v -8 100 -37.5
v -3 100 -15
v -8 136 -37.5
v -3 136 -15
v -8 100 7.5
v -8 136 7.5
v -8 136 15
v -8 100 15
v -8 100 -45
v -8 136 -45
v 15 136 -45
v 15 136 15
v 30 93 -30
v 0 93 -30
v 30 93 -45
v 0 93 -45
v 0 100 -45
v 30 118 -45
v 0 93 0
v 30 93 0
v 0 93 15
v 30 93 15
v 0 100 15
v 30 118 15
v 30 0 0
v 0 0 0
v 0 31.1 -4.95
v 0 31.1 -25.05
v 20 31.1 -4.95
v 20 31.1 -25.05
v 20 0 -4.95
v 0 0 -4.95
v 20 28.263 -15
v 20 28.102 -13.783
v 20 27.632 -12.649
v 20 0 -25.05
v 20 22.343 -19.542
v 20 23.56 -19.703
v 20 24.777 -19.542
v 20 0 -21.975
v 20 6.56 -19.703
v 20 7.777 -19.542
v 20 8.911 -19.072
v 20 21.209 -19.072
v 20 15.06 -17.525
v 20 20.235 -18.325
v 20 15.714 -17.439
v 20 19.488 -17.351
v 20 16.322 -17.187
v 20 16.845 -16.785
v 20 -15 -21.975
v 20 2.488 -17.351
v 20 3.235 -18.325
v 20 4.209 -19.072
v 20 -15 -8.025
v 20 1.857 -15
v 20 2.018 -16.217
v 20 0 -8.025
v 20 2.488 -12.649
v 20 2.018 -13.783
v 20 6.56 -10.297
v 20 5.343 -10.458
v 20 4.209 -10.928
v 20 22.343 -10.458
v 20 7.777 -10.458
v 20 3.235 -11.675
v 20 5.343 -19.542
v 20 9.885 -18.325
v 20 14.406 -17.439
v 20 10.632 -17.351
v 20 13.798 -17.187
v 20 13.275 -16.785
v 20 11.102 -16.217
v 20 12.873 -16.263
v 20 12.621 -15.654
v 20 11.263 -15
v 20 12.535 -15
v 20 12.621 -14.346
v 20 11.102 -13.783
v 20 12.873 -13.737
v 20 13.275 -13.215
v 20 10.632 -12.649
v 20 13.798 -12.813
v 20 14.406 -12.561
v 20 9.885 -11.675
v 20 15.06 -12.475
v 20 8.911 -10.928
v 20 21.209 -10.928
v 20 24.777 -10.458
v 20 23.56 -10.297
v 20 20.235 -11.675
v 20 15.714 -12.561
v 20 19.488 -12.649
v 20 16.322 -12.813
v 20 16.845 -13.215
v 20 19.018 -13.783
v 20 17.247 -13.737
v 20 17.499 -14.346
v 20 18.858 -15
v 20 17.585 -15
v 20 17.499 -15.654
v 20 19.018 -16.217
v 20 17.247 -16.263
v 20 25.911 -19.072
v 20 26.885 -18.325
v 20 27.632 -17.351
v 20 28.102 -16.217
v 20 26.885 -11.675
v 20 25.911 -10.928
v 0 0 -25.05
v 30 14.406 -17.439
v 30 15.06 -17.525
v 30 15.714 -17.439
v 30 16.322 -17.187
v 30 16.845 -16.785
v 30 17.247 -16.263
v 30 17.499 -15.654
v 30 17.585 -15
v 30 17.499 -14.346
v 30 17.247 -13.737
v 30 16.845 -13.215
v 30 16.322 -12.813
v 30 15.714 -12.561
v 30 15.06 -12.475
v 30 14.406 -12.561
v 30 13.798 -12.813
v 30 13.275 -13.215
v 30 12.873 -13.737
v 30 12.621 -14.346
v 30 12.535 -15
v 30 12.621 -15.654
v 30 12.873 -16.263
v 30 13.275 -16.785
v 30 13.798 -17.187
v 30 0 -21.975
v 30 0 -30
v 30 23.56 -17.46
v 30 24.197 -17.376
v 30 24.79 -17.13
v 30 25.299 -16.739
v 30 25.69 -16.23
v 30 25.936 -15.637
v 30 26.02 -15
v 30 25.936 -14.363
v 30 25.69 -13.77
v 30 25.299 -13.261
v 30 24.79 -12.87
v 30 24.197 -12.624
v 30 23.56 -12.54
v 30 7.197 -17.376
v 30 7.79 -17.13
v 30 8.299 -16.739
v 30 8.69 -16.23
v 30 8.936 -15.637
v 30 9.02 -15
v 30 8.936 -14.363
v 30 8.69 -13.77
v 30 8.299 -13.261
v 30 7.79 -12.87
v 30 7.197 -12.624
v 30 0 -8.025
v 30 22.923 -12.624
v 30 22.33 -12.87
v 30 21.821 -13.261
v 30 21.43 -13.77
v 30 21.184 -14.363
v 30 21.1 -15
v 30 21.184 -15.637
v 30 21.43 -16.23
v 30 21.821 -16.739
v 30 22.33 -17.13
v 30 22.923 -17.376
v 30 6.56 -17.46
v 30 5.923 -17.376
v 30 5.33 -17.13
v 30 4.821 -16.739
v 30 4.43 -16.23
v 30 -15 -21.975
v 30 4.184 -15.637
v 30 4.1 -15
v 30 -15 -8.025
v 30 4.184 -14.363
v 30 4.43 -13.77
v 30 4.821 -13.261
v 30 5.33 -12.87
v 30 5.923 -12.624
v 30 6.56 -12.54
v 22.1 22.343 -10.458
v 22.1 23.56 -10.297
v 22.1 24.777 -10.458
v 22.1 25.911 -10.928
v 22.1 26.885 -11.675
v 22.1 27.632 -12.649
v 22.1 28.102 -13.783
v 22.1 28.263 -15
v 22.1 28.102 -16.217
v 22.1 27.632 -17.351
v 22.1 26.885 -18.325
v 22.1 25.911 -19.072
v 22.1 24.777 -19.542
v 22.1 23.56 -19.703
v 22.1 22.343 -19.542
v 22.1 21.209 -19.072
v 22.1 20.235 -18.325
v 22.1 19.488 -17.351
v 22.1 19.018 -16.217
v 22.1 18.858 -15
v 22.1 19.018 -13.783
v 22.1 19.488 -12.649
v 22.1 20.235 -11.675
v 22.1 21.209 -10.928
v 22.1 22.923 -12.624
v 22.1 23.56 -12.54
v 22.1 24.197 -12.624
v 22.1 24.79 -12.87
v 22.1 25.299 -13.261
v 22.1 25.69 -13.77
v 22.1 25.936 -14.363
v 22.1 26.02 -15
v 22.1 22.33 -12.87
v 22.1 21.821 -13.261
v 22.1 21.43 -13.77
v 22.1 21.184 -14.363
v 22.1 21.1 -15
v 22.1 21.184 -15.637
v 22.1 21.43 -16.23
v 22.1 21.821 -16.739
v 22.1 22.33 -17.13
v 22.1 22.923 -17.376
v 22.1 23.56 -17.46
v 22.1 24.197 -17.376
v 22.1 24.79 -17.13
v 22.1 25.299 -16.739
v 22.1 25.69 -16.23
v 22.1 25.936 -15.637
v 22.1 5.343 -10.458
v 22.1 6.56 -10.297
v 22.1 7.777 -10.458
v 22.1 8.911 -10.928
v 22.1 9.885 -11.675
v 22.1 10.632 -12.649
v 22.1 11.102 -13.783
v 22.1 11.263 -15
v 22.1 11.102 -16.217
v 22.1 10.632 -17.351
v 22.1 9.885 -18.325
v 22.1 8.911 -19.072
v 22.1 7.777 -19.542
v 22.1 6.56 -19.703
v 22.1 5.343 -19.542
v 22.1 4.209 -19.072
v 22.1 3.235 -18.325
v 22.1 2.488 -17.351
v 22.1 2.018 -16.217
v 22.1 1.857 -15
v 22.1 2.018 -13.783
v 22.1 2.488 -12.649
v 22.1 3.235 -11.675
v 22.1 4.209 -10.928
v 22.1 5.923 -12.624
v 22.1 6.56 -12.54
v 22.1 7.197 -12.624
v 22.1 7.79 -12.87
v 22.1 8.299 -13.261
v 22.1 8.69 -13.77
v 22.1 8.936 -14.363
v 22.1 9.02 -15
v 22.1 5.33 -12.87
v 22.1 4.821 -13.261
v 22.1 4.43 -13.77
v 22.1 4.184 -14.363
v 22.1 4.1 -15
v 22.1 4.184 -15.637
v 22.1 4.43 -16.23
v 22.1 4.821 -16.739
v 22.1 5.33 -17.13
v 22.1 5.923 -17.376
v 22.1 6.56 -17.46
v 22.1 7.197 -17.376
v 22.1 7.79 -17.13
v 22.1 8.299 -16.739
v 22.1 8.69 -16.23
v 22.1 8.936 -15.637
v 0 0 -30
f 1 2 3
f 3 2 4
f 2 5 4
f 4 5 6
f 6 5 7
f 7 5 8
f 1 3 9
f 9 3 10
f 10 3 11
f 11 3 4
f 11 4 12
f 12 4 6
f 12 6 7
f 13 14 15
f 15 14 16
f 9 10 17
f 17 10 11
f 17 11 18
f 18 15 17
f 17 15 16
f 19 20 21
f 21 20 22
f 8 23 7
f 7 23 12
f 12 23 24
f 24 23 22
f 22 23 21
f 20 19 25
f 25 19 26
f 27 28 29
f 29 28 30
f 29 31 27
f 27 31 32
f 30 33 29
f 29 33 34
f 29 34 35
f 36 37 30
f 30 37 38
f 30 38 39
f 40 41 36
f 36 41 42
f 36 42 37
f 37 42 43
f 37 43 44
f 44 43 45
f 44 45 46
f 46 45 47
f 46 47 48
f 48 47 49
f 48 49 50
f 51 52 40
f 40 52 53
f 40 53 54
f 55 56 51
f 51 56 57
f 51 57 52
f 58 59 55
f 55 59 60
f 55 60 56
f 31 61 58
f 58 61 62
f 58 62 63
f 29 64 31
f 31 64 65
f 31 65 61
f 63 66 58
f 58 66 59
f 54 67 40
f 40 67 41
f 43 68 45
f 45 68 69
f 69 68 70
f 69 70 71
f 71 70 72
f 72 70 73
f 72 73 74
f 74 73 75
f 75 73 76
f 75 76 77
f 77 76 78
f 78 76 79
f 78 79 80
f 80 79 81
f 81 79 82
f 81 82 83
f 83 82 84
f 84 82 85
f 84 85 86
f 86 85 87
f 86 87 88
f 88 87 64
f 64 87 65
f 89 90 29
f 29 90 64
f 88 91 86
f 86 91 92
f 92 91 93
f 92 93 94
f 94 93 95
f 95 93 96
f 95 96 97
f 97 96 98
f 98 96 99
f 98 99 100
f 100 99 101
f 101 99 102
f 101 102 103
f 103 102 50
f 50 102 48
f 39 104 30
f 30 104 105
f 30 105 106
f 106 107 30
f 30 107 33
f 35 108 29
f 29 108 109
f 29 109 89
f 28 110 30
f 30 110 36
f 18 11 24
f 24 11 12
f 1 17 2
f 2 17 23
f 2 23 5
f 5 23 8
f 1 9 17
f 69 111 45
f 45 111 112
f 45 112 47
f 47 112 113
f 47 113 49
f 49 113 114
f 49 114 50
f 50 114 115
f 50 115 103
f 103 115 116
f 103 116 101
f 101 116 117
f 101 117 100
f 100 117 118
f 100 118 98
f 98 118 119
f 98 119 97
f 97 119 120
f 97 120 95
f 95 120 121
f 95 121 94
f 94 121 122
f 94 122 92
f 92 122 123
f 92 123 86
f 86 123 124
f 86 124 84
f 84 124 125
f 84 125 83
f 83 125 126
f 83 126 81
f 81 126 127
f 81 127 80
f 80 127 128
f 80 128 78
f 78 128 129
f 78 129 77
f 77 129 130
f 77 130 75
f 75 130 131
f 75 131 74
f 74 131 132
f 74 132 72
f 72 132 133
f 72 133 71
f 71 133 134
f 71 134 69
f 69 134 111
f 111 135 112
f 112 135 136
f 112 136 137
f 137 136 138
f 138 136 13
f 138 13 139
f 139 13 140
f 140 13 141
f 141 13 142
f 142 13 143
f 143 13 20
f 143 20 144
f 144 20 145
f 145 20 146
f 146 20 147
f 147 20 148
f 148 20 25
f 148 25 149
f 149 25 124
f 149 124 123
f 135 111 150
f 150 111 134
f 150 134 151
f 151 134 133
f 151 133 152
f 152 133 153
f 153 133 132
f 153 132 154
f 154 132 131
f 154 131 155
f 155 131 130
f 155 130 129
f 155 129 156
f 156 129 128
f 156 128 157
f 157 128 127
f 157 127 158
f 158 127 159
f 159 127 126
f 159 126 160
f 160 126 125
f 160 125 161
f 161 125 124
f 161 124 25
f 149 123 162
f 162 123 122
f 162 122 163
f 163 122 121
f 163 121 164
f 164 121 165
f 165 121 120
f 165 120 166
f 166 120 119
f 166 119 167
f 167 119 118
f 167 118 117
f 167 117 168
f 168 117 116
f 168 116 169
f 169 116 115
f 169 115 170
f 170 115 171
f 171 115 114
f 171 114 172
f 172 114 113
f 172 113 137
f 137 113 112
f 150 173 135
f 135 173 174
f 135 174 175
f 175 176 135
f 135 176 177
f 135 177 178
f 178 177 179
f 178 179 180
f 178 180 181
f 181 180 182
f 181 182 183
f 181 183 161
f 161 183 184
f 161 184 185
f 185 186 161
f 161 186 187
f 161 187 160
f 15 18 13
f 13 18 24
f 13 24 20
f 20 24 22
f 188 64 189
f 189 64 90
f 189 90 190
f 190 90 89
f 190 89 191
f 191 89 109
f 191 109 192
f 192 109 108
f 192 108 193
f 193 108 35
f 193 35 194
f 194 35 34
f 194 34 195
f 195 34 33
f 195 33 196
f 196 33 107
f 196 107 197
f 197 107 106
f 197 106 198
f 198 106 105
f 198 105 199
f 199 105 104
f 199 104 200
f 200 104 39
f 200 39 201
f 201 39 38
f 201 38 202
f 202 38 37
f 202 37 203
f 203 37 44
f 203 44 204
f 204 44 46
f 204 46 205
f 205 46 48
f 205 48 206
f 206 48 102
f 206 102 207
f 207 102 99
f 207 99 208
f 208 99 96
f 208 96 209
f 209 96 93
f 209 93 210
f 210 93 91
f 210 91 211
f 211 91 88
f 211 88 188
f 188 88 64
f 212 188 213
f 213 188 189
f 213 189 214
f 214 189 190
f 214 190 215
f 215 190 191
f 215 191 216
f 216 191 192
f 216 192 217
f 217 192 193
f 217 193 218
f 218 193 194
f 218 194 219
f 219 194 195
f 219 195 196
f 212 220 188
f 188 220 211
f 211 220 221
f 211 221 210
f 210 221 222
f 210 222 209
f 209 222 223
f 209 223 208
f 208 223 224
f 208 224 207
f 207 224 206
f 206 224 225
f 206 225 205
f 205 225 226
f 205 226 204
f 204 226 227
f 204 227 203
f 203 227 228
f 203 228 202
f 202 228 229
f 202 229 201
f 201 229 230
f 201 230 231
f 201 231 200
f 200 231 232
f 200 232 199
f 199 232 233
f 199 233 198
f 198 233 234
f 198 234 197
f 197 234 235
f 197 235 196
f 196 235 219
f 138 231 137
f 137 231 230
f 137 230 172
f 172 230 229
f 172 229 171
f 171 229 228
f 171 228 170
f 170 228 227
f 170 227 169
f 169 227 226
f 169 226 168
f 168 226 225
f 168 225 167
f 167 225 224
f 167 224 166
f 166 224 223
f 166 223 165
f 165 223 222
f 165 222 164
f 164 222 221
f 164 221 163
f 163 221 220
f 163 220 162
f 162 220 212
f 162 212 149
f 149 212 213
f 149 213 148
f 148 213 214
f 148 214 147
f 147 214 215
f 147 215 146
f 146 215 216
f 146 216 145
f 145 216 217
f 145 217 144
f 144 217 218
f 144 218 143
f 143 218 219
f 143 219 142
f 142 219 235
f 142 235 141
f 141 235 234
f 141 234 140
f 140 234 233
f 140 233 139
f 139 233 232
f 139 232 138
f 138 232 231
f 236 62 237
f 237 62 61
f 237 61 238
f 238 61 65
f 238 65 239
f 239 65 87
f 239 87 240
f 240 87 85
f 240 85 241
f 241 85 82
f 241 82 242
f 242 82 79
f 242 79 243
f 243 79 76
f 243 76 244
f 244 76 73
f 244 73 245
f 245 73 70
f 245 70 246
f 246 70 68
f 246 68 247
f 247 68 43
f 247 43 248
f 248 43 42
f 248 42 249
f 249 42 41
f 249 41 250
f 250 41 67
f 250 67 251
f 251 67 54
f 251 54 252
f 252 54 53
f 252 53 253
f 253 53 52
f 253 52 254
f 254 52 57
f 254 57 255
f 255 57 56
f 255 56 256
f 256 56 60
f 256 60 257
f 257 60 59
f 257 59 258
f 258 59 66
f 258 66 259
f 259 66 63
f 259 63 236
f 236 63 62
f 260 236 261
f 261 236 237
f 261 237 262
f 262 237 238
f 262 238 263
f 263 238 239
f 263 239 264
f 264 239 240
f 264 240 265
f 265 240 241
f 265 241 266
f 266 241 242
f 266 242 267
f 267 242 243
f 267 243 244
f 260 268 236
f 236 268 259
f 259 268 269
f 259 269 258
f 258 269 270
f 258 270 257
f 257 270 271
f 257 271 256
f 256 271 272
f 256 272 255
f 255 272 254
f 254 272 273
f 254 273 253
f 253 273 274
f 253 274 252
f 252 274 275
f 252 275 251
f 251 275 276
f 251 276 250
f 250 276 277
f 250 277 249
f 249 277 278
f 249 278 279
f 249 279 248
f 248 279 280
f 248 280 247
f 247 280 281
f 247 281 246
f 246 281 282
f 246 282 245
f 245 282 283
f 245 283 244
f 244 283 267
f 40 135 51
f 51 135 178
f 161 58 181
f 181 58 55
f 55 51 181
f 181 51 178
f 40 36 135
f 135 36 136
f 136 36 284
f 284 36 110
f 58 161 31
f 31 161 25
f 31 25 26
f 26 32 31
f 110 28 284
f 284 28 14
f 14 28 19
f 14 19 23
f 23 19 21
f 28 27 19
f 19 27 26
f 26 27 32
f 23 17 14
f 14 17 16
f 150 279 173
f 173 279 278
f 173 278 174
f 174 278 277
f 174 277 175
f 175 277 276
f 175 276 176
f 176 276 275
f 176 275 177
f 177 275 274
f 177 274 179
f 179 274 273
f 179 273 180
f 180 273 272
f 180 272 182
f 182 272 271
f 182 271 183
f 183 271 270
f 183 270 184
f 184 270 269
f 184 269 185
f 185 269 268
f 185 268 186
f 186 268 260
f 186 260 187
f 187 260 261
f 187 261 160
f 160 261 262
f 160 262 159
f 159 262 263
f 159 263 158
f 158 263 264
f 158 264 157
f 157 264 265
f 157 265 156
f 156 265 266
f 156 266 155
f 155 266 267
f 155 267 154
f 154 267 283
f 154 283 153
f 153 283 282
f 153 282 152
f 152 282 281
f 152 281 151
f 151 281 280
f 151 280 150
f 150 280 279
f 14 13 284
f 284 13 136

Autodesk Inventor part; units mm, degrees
ref_plane "YZ Plane" through (0, 0, 0) normal (1, 0, 0) x (0, 1, 0)
ref_plane "XZ Plane" through (0, 0, 0) normal (0, 1, 0) x (-1, 0, 0)
sketch "Sketch1" plane through (0, 0, 0) normal (0, 0, 1) x (1, 0, 0)
  line L0 (0, 0) -> (25, 0)
  line L1 (25, 0) -> (25, 40)
  line L2 (25, 40) -> (0, 40)
  line L3 (0, 40) -> (0, 0)
  dimension "d1" = 25
  dimension "d2" = 40
  dimension "d3" = 25
extrude "Extrusion1" add sketch "Sketch1" against normal blind 30
sketch "Sketch2" plane through (25, 0, 0) normal (1, 0, 0) x (0, 0, -1)
  line L0 (0, 0) -> (30, 0) projected
  circle A0 centre (15, 6.56) radius 2.46
extrude "Extrusion2" cut sketch "Sketch2" against normal blind 30
sketch "Sketch3" plane through (0, 0, 0) normal (-1, 0, 0) x (0, 0, 1)
  line L0 (0, 0) -> (-30, 0) projected
  line L1 (-25.05, 0) -> (-4.95, 0)
  line L2 (-4.95, 0) -> (-4.95, 33.12)
  line L3 (-4.95, 33.12) -> (-25.05, 33.12)
  line L4 (-25.05, 33.12) -> (-25.05, 0)
  dimension "d11" = 20.1
extrude "Extrusion3" cut sketch "Sketch3" against normal blind 20
sketch "Sketch4" plane through (0, 0, 0) normal (0, -1, 0) x (1, 0, 0)
  line L0 (20, -4.95) -> (20, -25.05) projected
  line L1 (20, -15) -> (25, -15)
  line L2 (25, 0) -> (25, -30) projected
  line L3 (20, -8.025) -> (25, -8.025)
  line L4 (25, -8.025) -> (25, -21.975)
  line L5 (25, -21.975) -> (20, -21.975)
  line L6 (20, -21.975) -> (20, -8.025)
  line L7 (20, -8.025) -> (25, -21.975) construction
  line L8 (25, -8.025) -> (20, -21.975) construction
  line L9 (25, -12.54) -> (25, -17.46) projected
  point P0 (0, 0)
  point P1 (22.5, -15)
  dimension "d14" = 13.95
extrude "Extrusion4" add sketch "Sketch4" along normal blind 15
sketch "Sketch5" plane through (20, 0, 0) normal (-1, 0, 0) x (0, 0, 1)
  circle A0 centre (-15, 6.56) radius 2.46 projected
  circle A1 centre (-15, 6.56) radius 4.7025
  circle A2 centre (-15, 6.56) radius 2.46 projected
  circle A3 centre (-15, 6.56) radius 2.46
  point P0 (0, 0)
  dimension "d17" = 9.405
extrude "Extrusion5" cut sketch "Sketch5" against normal blind 2.1
sketch "Sketch6" plane through (25, 0, 0) normal (1, 0, 0) x (0, 0, -1)
  circle A0 centre (15, 6.56) radius 4.7025 projected
  line L0 (15, 6.56) -> (15, 23.56)
  circle A1 centre (15, 23.56) radius 2.46
  point P0 (0, 0)
  dimension "d20" = 17
  dimension "d21" = 4.92
extrude "Extrusion6" cut sketch "Sketch6" against normal blind 10 contours A1
sketch "Sketch7" plane through (20, 0, 0) normal (-1, 0, 0) x (0, 0, 1)
  circle A0 centre (-15, 23.56) radius 2.46 projected
  circle A1 centre (-15, 23.56) radius 4.7025
  point P0 (0, 0)
  dimension "d24" = 9.405
extrude "Extrusion7" cut sketch "Sketch7" against normal blind 2.1
sketch "Sketch9" plane through (25, 0, 0) normal (1, 0, 0) x (0, 0, -1)
  circle A0 centre (15, 6.56) radius 2.46 projected
  circle A1 centre (15, 6.56) radius 2.46
  circle A2 centre (15, 23.56) radius 2.46 projected
  circle A3 centre (15, 23.56) radius 2.46
  line L0 (30, 40) -> (30, 0) projected
  line L1 (30, 0) -> (30, 40)
  line L2 (30, 40) -> (0, 40)
  line L3 (0, 40) -> (0, 0)
  line L4 (0, 0) -> (8.025, 0) projected
  line L5 (21.975, 0) -> (21.975, -15)
  line L6 (21.975, -15) -> (8.025, -15)
  line L7 (8.025, -15) -> (8.025, 0)
  line L8 (0, 0) -> (8.025, 0)
  line L9 (21.975, 0) -> (30, 0)
extrude "Extrusion8" add sketch "Sketch9" along normal blind 5
sketch "Sketch10" plane through (0, 40, 0) normal (0, 1, 0) x (1, 0, 0)
  line L0 (0, 30) -> (30, 30) projected
  line L1 (30, 0) -> (0, 0) projected
  line L2 (0, 30) -> (30, 30)
  line L3 (30, 30) -> (30, 0)
  line L4 (30, 0) -> (0, 0)
  line L5 (0, 0) -> (0, 30)
extrude "Extrusion9" add sketch "Sketch10" along normal blind 30
sketch "Sketch12" plane through (30, 0, 0) normal (1, 0, 0) x (0, 0, -1)
  circle A0 centre (15, 6.56) radius 2.46 projected
  line L0 (15, 6.56) -> (15, 15.06)
  circle A1 centre (15, 15.06) radius 2.525
  point P0 (0, 0)
  dimension "d31" = 8.5
  dimension "d33" = 5.05
extrude "Extrusion10" cut sketch "Sketch12" against normal blind 30 contours A1
sketch "Sketch14" plane through (0, 0, 0) normal (0, 0, 1) x (1, 0, 0)
  line L0 (30, 70) -> (0, 70) projected
  line L1 (0, 100) -> (-8, 100)
  line L2 (30, 0) -> (30, 70) projected
  line L3 (30, 118) -> (30, 70)
  line L4 (30, 105) -> (30, 100)
  line L5 (0, 70) -> (30, 70) projected
  line L6 (0, 70) -> (0, 100)
  line L7 (15, 136) -> (30, 118)
  line L8 (-8, 136) -> (15, 136)
  line L9 (-8, 100) -> (-8, 136)
  point P0 (0, 0)
  dimension "d47" = 30
extrude "Extrusion12" add sketch "Sketch14" against normal blind 30
sketch "Sketch15" plane through (0, 0, -25.05) normal (-1, 0, 0) x (0, 0, 1)
  line L0 (0, 33.12) -> (20.1, 33.12) projected
  line L1 (20.1, 33.12) -> (20.1, 0) projected
  line L2 (0, 33.12) -> (20.1, 33.12)
  line L3 (20.1, 33.12) -> (20.1, 31.1)
  line L4 (20.1, 31.1) -> (0, 31.1)
  line L5 (0, 31.1) -> (0, 33.12)
  point P0 (25.05, 0)
  dimension "d57" = 2.02
extrude "Extrusion13" add sketch "Sketch15" against normal blind 20
sketch "Sketch23" plane through (0, 0, 0) normal (0, 0, 1) x (1, 0, 0)
  line L0 (0, 100) -> (-8, 100) projected
  line L1 (-8, 136) -> (15, 136) projected
  line L2 (-8, 136) -> (15, 136)
  line L3 (30, 118) -> (15, 136) projected
  line L4 (15, 136) -> (30, 118)
  line L5 (30, 118) -> (30, 93)
  line L6 (30, 0) -> (30, 118) projected
  line L7 (30, 93) -> (0, 93)
  line L8 (0, 93) -> (0, 100)
  line L9 (-8, 100) -> (0, 100)
  line L10 (15, 136) -> (-8, 136) projected
  line L11 (-8, 136) -> (-8, 100)
  point P0 (0, 0)
  point P1 (-2, 102)
  point P2 (4, 118)
  point P3 (-2, 134)
  dimension "d85" = 25
extrude "Extrusion14" add sketch "Sketch23" along normal blind 15
ref_plane "Work Plane1" through (0, 0, -15) normal (0, 0, 1) x (1, 0, 0)
mirror "Mirror1" about plane through (0, 0, -15) normal (0, 0, 1) of "Extrusion14"
sketch "Sketch27" plane through (-8, 136, 15) normal (0, 1, 0) x (1, 0, 0)
  line L0 (0, 60) -> (0, 0) projected
  line L1 (0, 30) -> (0, 7.5)
  line L2 (8, 60) -> (8, 0) projected
  line L3 (0, 52.5) -> (0, 30)
  line L4 (0, 52.5) -> (5, 30)
  line L5 (5, 30) -> (0, 7.5)
  point P0 (8, 15)
  dimension "d94" = 22.5
extrude "Extrusion16" cut sketch "Sketch27" against normal through all
properties part number "orien_b_40mm"
